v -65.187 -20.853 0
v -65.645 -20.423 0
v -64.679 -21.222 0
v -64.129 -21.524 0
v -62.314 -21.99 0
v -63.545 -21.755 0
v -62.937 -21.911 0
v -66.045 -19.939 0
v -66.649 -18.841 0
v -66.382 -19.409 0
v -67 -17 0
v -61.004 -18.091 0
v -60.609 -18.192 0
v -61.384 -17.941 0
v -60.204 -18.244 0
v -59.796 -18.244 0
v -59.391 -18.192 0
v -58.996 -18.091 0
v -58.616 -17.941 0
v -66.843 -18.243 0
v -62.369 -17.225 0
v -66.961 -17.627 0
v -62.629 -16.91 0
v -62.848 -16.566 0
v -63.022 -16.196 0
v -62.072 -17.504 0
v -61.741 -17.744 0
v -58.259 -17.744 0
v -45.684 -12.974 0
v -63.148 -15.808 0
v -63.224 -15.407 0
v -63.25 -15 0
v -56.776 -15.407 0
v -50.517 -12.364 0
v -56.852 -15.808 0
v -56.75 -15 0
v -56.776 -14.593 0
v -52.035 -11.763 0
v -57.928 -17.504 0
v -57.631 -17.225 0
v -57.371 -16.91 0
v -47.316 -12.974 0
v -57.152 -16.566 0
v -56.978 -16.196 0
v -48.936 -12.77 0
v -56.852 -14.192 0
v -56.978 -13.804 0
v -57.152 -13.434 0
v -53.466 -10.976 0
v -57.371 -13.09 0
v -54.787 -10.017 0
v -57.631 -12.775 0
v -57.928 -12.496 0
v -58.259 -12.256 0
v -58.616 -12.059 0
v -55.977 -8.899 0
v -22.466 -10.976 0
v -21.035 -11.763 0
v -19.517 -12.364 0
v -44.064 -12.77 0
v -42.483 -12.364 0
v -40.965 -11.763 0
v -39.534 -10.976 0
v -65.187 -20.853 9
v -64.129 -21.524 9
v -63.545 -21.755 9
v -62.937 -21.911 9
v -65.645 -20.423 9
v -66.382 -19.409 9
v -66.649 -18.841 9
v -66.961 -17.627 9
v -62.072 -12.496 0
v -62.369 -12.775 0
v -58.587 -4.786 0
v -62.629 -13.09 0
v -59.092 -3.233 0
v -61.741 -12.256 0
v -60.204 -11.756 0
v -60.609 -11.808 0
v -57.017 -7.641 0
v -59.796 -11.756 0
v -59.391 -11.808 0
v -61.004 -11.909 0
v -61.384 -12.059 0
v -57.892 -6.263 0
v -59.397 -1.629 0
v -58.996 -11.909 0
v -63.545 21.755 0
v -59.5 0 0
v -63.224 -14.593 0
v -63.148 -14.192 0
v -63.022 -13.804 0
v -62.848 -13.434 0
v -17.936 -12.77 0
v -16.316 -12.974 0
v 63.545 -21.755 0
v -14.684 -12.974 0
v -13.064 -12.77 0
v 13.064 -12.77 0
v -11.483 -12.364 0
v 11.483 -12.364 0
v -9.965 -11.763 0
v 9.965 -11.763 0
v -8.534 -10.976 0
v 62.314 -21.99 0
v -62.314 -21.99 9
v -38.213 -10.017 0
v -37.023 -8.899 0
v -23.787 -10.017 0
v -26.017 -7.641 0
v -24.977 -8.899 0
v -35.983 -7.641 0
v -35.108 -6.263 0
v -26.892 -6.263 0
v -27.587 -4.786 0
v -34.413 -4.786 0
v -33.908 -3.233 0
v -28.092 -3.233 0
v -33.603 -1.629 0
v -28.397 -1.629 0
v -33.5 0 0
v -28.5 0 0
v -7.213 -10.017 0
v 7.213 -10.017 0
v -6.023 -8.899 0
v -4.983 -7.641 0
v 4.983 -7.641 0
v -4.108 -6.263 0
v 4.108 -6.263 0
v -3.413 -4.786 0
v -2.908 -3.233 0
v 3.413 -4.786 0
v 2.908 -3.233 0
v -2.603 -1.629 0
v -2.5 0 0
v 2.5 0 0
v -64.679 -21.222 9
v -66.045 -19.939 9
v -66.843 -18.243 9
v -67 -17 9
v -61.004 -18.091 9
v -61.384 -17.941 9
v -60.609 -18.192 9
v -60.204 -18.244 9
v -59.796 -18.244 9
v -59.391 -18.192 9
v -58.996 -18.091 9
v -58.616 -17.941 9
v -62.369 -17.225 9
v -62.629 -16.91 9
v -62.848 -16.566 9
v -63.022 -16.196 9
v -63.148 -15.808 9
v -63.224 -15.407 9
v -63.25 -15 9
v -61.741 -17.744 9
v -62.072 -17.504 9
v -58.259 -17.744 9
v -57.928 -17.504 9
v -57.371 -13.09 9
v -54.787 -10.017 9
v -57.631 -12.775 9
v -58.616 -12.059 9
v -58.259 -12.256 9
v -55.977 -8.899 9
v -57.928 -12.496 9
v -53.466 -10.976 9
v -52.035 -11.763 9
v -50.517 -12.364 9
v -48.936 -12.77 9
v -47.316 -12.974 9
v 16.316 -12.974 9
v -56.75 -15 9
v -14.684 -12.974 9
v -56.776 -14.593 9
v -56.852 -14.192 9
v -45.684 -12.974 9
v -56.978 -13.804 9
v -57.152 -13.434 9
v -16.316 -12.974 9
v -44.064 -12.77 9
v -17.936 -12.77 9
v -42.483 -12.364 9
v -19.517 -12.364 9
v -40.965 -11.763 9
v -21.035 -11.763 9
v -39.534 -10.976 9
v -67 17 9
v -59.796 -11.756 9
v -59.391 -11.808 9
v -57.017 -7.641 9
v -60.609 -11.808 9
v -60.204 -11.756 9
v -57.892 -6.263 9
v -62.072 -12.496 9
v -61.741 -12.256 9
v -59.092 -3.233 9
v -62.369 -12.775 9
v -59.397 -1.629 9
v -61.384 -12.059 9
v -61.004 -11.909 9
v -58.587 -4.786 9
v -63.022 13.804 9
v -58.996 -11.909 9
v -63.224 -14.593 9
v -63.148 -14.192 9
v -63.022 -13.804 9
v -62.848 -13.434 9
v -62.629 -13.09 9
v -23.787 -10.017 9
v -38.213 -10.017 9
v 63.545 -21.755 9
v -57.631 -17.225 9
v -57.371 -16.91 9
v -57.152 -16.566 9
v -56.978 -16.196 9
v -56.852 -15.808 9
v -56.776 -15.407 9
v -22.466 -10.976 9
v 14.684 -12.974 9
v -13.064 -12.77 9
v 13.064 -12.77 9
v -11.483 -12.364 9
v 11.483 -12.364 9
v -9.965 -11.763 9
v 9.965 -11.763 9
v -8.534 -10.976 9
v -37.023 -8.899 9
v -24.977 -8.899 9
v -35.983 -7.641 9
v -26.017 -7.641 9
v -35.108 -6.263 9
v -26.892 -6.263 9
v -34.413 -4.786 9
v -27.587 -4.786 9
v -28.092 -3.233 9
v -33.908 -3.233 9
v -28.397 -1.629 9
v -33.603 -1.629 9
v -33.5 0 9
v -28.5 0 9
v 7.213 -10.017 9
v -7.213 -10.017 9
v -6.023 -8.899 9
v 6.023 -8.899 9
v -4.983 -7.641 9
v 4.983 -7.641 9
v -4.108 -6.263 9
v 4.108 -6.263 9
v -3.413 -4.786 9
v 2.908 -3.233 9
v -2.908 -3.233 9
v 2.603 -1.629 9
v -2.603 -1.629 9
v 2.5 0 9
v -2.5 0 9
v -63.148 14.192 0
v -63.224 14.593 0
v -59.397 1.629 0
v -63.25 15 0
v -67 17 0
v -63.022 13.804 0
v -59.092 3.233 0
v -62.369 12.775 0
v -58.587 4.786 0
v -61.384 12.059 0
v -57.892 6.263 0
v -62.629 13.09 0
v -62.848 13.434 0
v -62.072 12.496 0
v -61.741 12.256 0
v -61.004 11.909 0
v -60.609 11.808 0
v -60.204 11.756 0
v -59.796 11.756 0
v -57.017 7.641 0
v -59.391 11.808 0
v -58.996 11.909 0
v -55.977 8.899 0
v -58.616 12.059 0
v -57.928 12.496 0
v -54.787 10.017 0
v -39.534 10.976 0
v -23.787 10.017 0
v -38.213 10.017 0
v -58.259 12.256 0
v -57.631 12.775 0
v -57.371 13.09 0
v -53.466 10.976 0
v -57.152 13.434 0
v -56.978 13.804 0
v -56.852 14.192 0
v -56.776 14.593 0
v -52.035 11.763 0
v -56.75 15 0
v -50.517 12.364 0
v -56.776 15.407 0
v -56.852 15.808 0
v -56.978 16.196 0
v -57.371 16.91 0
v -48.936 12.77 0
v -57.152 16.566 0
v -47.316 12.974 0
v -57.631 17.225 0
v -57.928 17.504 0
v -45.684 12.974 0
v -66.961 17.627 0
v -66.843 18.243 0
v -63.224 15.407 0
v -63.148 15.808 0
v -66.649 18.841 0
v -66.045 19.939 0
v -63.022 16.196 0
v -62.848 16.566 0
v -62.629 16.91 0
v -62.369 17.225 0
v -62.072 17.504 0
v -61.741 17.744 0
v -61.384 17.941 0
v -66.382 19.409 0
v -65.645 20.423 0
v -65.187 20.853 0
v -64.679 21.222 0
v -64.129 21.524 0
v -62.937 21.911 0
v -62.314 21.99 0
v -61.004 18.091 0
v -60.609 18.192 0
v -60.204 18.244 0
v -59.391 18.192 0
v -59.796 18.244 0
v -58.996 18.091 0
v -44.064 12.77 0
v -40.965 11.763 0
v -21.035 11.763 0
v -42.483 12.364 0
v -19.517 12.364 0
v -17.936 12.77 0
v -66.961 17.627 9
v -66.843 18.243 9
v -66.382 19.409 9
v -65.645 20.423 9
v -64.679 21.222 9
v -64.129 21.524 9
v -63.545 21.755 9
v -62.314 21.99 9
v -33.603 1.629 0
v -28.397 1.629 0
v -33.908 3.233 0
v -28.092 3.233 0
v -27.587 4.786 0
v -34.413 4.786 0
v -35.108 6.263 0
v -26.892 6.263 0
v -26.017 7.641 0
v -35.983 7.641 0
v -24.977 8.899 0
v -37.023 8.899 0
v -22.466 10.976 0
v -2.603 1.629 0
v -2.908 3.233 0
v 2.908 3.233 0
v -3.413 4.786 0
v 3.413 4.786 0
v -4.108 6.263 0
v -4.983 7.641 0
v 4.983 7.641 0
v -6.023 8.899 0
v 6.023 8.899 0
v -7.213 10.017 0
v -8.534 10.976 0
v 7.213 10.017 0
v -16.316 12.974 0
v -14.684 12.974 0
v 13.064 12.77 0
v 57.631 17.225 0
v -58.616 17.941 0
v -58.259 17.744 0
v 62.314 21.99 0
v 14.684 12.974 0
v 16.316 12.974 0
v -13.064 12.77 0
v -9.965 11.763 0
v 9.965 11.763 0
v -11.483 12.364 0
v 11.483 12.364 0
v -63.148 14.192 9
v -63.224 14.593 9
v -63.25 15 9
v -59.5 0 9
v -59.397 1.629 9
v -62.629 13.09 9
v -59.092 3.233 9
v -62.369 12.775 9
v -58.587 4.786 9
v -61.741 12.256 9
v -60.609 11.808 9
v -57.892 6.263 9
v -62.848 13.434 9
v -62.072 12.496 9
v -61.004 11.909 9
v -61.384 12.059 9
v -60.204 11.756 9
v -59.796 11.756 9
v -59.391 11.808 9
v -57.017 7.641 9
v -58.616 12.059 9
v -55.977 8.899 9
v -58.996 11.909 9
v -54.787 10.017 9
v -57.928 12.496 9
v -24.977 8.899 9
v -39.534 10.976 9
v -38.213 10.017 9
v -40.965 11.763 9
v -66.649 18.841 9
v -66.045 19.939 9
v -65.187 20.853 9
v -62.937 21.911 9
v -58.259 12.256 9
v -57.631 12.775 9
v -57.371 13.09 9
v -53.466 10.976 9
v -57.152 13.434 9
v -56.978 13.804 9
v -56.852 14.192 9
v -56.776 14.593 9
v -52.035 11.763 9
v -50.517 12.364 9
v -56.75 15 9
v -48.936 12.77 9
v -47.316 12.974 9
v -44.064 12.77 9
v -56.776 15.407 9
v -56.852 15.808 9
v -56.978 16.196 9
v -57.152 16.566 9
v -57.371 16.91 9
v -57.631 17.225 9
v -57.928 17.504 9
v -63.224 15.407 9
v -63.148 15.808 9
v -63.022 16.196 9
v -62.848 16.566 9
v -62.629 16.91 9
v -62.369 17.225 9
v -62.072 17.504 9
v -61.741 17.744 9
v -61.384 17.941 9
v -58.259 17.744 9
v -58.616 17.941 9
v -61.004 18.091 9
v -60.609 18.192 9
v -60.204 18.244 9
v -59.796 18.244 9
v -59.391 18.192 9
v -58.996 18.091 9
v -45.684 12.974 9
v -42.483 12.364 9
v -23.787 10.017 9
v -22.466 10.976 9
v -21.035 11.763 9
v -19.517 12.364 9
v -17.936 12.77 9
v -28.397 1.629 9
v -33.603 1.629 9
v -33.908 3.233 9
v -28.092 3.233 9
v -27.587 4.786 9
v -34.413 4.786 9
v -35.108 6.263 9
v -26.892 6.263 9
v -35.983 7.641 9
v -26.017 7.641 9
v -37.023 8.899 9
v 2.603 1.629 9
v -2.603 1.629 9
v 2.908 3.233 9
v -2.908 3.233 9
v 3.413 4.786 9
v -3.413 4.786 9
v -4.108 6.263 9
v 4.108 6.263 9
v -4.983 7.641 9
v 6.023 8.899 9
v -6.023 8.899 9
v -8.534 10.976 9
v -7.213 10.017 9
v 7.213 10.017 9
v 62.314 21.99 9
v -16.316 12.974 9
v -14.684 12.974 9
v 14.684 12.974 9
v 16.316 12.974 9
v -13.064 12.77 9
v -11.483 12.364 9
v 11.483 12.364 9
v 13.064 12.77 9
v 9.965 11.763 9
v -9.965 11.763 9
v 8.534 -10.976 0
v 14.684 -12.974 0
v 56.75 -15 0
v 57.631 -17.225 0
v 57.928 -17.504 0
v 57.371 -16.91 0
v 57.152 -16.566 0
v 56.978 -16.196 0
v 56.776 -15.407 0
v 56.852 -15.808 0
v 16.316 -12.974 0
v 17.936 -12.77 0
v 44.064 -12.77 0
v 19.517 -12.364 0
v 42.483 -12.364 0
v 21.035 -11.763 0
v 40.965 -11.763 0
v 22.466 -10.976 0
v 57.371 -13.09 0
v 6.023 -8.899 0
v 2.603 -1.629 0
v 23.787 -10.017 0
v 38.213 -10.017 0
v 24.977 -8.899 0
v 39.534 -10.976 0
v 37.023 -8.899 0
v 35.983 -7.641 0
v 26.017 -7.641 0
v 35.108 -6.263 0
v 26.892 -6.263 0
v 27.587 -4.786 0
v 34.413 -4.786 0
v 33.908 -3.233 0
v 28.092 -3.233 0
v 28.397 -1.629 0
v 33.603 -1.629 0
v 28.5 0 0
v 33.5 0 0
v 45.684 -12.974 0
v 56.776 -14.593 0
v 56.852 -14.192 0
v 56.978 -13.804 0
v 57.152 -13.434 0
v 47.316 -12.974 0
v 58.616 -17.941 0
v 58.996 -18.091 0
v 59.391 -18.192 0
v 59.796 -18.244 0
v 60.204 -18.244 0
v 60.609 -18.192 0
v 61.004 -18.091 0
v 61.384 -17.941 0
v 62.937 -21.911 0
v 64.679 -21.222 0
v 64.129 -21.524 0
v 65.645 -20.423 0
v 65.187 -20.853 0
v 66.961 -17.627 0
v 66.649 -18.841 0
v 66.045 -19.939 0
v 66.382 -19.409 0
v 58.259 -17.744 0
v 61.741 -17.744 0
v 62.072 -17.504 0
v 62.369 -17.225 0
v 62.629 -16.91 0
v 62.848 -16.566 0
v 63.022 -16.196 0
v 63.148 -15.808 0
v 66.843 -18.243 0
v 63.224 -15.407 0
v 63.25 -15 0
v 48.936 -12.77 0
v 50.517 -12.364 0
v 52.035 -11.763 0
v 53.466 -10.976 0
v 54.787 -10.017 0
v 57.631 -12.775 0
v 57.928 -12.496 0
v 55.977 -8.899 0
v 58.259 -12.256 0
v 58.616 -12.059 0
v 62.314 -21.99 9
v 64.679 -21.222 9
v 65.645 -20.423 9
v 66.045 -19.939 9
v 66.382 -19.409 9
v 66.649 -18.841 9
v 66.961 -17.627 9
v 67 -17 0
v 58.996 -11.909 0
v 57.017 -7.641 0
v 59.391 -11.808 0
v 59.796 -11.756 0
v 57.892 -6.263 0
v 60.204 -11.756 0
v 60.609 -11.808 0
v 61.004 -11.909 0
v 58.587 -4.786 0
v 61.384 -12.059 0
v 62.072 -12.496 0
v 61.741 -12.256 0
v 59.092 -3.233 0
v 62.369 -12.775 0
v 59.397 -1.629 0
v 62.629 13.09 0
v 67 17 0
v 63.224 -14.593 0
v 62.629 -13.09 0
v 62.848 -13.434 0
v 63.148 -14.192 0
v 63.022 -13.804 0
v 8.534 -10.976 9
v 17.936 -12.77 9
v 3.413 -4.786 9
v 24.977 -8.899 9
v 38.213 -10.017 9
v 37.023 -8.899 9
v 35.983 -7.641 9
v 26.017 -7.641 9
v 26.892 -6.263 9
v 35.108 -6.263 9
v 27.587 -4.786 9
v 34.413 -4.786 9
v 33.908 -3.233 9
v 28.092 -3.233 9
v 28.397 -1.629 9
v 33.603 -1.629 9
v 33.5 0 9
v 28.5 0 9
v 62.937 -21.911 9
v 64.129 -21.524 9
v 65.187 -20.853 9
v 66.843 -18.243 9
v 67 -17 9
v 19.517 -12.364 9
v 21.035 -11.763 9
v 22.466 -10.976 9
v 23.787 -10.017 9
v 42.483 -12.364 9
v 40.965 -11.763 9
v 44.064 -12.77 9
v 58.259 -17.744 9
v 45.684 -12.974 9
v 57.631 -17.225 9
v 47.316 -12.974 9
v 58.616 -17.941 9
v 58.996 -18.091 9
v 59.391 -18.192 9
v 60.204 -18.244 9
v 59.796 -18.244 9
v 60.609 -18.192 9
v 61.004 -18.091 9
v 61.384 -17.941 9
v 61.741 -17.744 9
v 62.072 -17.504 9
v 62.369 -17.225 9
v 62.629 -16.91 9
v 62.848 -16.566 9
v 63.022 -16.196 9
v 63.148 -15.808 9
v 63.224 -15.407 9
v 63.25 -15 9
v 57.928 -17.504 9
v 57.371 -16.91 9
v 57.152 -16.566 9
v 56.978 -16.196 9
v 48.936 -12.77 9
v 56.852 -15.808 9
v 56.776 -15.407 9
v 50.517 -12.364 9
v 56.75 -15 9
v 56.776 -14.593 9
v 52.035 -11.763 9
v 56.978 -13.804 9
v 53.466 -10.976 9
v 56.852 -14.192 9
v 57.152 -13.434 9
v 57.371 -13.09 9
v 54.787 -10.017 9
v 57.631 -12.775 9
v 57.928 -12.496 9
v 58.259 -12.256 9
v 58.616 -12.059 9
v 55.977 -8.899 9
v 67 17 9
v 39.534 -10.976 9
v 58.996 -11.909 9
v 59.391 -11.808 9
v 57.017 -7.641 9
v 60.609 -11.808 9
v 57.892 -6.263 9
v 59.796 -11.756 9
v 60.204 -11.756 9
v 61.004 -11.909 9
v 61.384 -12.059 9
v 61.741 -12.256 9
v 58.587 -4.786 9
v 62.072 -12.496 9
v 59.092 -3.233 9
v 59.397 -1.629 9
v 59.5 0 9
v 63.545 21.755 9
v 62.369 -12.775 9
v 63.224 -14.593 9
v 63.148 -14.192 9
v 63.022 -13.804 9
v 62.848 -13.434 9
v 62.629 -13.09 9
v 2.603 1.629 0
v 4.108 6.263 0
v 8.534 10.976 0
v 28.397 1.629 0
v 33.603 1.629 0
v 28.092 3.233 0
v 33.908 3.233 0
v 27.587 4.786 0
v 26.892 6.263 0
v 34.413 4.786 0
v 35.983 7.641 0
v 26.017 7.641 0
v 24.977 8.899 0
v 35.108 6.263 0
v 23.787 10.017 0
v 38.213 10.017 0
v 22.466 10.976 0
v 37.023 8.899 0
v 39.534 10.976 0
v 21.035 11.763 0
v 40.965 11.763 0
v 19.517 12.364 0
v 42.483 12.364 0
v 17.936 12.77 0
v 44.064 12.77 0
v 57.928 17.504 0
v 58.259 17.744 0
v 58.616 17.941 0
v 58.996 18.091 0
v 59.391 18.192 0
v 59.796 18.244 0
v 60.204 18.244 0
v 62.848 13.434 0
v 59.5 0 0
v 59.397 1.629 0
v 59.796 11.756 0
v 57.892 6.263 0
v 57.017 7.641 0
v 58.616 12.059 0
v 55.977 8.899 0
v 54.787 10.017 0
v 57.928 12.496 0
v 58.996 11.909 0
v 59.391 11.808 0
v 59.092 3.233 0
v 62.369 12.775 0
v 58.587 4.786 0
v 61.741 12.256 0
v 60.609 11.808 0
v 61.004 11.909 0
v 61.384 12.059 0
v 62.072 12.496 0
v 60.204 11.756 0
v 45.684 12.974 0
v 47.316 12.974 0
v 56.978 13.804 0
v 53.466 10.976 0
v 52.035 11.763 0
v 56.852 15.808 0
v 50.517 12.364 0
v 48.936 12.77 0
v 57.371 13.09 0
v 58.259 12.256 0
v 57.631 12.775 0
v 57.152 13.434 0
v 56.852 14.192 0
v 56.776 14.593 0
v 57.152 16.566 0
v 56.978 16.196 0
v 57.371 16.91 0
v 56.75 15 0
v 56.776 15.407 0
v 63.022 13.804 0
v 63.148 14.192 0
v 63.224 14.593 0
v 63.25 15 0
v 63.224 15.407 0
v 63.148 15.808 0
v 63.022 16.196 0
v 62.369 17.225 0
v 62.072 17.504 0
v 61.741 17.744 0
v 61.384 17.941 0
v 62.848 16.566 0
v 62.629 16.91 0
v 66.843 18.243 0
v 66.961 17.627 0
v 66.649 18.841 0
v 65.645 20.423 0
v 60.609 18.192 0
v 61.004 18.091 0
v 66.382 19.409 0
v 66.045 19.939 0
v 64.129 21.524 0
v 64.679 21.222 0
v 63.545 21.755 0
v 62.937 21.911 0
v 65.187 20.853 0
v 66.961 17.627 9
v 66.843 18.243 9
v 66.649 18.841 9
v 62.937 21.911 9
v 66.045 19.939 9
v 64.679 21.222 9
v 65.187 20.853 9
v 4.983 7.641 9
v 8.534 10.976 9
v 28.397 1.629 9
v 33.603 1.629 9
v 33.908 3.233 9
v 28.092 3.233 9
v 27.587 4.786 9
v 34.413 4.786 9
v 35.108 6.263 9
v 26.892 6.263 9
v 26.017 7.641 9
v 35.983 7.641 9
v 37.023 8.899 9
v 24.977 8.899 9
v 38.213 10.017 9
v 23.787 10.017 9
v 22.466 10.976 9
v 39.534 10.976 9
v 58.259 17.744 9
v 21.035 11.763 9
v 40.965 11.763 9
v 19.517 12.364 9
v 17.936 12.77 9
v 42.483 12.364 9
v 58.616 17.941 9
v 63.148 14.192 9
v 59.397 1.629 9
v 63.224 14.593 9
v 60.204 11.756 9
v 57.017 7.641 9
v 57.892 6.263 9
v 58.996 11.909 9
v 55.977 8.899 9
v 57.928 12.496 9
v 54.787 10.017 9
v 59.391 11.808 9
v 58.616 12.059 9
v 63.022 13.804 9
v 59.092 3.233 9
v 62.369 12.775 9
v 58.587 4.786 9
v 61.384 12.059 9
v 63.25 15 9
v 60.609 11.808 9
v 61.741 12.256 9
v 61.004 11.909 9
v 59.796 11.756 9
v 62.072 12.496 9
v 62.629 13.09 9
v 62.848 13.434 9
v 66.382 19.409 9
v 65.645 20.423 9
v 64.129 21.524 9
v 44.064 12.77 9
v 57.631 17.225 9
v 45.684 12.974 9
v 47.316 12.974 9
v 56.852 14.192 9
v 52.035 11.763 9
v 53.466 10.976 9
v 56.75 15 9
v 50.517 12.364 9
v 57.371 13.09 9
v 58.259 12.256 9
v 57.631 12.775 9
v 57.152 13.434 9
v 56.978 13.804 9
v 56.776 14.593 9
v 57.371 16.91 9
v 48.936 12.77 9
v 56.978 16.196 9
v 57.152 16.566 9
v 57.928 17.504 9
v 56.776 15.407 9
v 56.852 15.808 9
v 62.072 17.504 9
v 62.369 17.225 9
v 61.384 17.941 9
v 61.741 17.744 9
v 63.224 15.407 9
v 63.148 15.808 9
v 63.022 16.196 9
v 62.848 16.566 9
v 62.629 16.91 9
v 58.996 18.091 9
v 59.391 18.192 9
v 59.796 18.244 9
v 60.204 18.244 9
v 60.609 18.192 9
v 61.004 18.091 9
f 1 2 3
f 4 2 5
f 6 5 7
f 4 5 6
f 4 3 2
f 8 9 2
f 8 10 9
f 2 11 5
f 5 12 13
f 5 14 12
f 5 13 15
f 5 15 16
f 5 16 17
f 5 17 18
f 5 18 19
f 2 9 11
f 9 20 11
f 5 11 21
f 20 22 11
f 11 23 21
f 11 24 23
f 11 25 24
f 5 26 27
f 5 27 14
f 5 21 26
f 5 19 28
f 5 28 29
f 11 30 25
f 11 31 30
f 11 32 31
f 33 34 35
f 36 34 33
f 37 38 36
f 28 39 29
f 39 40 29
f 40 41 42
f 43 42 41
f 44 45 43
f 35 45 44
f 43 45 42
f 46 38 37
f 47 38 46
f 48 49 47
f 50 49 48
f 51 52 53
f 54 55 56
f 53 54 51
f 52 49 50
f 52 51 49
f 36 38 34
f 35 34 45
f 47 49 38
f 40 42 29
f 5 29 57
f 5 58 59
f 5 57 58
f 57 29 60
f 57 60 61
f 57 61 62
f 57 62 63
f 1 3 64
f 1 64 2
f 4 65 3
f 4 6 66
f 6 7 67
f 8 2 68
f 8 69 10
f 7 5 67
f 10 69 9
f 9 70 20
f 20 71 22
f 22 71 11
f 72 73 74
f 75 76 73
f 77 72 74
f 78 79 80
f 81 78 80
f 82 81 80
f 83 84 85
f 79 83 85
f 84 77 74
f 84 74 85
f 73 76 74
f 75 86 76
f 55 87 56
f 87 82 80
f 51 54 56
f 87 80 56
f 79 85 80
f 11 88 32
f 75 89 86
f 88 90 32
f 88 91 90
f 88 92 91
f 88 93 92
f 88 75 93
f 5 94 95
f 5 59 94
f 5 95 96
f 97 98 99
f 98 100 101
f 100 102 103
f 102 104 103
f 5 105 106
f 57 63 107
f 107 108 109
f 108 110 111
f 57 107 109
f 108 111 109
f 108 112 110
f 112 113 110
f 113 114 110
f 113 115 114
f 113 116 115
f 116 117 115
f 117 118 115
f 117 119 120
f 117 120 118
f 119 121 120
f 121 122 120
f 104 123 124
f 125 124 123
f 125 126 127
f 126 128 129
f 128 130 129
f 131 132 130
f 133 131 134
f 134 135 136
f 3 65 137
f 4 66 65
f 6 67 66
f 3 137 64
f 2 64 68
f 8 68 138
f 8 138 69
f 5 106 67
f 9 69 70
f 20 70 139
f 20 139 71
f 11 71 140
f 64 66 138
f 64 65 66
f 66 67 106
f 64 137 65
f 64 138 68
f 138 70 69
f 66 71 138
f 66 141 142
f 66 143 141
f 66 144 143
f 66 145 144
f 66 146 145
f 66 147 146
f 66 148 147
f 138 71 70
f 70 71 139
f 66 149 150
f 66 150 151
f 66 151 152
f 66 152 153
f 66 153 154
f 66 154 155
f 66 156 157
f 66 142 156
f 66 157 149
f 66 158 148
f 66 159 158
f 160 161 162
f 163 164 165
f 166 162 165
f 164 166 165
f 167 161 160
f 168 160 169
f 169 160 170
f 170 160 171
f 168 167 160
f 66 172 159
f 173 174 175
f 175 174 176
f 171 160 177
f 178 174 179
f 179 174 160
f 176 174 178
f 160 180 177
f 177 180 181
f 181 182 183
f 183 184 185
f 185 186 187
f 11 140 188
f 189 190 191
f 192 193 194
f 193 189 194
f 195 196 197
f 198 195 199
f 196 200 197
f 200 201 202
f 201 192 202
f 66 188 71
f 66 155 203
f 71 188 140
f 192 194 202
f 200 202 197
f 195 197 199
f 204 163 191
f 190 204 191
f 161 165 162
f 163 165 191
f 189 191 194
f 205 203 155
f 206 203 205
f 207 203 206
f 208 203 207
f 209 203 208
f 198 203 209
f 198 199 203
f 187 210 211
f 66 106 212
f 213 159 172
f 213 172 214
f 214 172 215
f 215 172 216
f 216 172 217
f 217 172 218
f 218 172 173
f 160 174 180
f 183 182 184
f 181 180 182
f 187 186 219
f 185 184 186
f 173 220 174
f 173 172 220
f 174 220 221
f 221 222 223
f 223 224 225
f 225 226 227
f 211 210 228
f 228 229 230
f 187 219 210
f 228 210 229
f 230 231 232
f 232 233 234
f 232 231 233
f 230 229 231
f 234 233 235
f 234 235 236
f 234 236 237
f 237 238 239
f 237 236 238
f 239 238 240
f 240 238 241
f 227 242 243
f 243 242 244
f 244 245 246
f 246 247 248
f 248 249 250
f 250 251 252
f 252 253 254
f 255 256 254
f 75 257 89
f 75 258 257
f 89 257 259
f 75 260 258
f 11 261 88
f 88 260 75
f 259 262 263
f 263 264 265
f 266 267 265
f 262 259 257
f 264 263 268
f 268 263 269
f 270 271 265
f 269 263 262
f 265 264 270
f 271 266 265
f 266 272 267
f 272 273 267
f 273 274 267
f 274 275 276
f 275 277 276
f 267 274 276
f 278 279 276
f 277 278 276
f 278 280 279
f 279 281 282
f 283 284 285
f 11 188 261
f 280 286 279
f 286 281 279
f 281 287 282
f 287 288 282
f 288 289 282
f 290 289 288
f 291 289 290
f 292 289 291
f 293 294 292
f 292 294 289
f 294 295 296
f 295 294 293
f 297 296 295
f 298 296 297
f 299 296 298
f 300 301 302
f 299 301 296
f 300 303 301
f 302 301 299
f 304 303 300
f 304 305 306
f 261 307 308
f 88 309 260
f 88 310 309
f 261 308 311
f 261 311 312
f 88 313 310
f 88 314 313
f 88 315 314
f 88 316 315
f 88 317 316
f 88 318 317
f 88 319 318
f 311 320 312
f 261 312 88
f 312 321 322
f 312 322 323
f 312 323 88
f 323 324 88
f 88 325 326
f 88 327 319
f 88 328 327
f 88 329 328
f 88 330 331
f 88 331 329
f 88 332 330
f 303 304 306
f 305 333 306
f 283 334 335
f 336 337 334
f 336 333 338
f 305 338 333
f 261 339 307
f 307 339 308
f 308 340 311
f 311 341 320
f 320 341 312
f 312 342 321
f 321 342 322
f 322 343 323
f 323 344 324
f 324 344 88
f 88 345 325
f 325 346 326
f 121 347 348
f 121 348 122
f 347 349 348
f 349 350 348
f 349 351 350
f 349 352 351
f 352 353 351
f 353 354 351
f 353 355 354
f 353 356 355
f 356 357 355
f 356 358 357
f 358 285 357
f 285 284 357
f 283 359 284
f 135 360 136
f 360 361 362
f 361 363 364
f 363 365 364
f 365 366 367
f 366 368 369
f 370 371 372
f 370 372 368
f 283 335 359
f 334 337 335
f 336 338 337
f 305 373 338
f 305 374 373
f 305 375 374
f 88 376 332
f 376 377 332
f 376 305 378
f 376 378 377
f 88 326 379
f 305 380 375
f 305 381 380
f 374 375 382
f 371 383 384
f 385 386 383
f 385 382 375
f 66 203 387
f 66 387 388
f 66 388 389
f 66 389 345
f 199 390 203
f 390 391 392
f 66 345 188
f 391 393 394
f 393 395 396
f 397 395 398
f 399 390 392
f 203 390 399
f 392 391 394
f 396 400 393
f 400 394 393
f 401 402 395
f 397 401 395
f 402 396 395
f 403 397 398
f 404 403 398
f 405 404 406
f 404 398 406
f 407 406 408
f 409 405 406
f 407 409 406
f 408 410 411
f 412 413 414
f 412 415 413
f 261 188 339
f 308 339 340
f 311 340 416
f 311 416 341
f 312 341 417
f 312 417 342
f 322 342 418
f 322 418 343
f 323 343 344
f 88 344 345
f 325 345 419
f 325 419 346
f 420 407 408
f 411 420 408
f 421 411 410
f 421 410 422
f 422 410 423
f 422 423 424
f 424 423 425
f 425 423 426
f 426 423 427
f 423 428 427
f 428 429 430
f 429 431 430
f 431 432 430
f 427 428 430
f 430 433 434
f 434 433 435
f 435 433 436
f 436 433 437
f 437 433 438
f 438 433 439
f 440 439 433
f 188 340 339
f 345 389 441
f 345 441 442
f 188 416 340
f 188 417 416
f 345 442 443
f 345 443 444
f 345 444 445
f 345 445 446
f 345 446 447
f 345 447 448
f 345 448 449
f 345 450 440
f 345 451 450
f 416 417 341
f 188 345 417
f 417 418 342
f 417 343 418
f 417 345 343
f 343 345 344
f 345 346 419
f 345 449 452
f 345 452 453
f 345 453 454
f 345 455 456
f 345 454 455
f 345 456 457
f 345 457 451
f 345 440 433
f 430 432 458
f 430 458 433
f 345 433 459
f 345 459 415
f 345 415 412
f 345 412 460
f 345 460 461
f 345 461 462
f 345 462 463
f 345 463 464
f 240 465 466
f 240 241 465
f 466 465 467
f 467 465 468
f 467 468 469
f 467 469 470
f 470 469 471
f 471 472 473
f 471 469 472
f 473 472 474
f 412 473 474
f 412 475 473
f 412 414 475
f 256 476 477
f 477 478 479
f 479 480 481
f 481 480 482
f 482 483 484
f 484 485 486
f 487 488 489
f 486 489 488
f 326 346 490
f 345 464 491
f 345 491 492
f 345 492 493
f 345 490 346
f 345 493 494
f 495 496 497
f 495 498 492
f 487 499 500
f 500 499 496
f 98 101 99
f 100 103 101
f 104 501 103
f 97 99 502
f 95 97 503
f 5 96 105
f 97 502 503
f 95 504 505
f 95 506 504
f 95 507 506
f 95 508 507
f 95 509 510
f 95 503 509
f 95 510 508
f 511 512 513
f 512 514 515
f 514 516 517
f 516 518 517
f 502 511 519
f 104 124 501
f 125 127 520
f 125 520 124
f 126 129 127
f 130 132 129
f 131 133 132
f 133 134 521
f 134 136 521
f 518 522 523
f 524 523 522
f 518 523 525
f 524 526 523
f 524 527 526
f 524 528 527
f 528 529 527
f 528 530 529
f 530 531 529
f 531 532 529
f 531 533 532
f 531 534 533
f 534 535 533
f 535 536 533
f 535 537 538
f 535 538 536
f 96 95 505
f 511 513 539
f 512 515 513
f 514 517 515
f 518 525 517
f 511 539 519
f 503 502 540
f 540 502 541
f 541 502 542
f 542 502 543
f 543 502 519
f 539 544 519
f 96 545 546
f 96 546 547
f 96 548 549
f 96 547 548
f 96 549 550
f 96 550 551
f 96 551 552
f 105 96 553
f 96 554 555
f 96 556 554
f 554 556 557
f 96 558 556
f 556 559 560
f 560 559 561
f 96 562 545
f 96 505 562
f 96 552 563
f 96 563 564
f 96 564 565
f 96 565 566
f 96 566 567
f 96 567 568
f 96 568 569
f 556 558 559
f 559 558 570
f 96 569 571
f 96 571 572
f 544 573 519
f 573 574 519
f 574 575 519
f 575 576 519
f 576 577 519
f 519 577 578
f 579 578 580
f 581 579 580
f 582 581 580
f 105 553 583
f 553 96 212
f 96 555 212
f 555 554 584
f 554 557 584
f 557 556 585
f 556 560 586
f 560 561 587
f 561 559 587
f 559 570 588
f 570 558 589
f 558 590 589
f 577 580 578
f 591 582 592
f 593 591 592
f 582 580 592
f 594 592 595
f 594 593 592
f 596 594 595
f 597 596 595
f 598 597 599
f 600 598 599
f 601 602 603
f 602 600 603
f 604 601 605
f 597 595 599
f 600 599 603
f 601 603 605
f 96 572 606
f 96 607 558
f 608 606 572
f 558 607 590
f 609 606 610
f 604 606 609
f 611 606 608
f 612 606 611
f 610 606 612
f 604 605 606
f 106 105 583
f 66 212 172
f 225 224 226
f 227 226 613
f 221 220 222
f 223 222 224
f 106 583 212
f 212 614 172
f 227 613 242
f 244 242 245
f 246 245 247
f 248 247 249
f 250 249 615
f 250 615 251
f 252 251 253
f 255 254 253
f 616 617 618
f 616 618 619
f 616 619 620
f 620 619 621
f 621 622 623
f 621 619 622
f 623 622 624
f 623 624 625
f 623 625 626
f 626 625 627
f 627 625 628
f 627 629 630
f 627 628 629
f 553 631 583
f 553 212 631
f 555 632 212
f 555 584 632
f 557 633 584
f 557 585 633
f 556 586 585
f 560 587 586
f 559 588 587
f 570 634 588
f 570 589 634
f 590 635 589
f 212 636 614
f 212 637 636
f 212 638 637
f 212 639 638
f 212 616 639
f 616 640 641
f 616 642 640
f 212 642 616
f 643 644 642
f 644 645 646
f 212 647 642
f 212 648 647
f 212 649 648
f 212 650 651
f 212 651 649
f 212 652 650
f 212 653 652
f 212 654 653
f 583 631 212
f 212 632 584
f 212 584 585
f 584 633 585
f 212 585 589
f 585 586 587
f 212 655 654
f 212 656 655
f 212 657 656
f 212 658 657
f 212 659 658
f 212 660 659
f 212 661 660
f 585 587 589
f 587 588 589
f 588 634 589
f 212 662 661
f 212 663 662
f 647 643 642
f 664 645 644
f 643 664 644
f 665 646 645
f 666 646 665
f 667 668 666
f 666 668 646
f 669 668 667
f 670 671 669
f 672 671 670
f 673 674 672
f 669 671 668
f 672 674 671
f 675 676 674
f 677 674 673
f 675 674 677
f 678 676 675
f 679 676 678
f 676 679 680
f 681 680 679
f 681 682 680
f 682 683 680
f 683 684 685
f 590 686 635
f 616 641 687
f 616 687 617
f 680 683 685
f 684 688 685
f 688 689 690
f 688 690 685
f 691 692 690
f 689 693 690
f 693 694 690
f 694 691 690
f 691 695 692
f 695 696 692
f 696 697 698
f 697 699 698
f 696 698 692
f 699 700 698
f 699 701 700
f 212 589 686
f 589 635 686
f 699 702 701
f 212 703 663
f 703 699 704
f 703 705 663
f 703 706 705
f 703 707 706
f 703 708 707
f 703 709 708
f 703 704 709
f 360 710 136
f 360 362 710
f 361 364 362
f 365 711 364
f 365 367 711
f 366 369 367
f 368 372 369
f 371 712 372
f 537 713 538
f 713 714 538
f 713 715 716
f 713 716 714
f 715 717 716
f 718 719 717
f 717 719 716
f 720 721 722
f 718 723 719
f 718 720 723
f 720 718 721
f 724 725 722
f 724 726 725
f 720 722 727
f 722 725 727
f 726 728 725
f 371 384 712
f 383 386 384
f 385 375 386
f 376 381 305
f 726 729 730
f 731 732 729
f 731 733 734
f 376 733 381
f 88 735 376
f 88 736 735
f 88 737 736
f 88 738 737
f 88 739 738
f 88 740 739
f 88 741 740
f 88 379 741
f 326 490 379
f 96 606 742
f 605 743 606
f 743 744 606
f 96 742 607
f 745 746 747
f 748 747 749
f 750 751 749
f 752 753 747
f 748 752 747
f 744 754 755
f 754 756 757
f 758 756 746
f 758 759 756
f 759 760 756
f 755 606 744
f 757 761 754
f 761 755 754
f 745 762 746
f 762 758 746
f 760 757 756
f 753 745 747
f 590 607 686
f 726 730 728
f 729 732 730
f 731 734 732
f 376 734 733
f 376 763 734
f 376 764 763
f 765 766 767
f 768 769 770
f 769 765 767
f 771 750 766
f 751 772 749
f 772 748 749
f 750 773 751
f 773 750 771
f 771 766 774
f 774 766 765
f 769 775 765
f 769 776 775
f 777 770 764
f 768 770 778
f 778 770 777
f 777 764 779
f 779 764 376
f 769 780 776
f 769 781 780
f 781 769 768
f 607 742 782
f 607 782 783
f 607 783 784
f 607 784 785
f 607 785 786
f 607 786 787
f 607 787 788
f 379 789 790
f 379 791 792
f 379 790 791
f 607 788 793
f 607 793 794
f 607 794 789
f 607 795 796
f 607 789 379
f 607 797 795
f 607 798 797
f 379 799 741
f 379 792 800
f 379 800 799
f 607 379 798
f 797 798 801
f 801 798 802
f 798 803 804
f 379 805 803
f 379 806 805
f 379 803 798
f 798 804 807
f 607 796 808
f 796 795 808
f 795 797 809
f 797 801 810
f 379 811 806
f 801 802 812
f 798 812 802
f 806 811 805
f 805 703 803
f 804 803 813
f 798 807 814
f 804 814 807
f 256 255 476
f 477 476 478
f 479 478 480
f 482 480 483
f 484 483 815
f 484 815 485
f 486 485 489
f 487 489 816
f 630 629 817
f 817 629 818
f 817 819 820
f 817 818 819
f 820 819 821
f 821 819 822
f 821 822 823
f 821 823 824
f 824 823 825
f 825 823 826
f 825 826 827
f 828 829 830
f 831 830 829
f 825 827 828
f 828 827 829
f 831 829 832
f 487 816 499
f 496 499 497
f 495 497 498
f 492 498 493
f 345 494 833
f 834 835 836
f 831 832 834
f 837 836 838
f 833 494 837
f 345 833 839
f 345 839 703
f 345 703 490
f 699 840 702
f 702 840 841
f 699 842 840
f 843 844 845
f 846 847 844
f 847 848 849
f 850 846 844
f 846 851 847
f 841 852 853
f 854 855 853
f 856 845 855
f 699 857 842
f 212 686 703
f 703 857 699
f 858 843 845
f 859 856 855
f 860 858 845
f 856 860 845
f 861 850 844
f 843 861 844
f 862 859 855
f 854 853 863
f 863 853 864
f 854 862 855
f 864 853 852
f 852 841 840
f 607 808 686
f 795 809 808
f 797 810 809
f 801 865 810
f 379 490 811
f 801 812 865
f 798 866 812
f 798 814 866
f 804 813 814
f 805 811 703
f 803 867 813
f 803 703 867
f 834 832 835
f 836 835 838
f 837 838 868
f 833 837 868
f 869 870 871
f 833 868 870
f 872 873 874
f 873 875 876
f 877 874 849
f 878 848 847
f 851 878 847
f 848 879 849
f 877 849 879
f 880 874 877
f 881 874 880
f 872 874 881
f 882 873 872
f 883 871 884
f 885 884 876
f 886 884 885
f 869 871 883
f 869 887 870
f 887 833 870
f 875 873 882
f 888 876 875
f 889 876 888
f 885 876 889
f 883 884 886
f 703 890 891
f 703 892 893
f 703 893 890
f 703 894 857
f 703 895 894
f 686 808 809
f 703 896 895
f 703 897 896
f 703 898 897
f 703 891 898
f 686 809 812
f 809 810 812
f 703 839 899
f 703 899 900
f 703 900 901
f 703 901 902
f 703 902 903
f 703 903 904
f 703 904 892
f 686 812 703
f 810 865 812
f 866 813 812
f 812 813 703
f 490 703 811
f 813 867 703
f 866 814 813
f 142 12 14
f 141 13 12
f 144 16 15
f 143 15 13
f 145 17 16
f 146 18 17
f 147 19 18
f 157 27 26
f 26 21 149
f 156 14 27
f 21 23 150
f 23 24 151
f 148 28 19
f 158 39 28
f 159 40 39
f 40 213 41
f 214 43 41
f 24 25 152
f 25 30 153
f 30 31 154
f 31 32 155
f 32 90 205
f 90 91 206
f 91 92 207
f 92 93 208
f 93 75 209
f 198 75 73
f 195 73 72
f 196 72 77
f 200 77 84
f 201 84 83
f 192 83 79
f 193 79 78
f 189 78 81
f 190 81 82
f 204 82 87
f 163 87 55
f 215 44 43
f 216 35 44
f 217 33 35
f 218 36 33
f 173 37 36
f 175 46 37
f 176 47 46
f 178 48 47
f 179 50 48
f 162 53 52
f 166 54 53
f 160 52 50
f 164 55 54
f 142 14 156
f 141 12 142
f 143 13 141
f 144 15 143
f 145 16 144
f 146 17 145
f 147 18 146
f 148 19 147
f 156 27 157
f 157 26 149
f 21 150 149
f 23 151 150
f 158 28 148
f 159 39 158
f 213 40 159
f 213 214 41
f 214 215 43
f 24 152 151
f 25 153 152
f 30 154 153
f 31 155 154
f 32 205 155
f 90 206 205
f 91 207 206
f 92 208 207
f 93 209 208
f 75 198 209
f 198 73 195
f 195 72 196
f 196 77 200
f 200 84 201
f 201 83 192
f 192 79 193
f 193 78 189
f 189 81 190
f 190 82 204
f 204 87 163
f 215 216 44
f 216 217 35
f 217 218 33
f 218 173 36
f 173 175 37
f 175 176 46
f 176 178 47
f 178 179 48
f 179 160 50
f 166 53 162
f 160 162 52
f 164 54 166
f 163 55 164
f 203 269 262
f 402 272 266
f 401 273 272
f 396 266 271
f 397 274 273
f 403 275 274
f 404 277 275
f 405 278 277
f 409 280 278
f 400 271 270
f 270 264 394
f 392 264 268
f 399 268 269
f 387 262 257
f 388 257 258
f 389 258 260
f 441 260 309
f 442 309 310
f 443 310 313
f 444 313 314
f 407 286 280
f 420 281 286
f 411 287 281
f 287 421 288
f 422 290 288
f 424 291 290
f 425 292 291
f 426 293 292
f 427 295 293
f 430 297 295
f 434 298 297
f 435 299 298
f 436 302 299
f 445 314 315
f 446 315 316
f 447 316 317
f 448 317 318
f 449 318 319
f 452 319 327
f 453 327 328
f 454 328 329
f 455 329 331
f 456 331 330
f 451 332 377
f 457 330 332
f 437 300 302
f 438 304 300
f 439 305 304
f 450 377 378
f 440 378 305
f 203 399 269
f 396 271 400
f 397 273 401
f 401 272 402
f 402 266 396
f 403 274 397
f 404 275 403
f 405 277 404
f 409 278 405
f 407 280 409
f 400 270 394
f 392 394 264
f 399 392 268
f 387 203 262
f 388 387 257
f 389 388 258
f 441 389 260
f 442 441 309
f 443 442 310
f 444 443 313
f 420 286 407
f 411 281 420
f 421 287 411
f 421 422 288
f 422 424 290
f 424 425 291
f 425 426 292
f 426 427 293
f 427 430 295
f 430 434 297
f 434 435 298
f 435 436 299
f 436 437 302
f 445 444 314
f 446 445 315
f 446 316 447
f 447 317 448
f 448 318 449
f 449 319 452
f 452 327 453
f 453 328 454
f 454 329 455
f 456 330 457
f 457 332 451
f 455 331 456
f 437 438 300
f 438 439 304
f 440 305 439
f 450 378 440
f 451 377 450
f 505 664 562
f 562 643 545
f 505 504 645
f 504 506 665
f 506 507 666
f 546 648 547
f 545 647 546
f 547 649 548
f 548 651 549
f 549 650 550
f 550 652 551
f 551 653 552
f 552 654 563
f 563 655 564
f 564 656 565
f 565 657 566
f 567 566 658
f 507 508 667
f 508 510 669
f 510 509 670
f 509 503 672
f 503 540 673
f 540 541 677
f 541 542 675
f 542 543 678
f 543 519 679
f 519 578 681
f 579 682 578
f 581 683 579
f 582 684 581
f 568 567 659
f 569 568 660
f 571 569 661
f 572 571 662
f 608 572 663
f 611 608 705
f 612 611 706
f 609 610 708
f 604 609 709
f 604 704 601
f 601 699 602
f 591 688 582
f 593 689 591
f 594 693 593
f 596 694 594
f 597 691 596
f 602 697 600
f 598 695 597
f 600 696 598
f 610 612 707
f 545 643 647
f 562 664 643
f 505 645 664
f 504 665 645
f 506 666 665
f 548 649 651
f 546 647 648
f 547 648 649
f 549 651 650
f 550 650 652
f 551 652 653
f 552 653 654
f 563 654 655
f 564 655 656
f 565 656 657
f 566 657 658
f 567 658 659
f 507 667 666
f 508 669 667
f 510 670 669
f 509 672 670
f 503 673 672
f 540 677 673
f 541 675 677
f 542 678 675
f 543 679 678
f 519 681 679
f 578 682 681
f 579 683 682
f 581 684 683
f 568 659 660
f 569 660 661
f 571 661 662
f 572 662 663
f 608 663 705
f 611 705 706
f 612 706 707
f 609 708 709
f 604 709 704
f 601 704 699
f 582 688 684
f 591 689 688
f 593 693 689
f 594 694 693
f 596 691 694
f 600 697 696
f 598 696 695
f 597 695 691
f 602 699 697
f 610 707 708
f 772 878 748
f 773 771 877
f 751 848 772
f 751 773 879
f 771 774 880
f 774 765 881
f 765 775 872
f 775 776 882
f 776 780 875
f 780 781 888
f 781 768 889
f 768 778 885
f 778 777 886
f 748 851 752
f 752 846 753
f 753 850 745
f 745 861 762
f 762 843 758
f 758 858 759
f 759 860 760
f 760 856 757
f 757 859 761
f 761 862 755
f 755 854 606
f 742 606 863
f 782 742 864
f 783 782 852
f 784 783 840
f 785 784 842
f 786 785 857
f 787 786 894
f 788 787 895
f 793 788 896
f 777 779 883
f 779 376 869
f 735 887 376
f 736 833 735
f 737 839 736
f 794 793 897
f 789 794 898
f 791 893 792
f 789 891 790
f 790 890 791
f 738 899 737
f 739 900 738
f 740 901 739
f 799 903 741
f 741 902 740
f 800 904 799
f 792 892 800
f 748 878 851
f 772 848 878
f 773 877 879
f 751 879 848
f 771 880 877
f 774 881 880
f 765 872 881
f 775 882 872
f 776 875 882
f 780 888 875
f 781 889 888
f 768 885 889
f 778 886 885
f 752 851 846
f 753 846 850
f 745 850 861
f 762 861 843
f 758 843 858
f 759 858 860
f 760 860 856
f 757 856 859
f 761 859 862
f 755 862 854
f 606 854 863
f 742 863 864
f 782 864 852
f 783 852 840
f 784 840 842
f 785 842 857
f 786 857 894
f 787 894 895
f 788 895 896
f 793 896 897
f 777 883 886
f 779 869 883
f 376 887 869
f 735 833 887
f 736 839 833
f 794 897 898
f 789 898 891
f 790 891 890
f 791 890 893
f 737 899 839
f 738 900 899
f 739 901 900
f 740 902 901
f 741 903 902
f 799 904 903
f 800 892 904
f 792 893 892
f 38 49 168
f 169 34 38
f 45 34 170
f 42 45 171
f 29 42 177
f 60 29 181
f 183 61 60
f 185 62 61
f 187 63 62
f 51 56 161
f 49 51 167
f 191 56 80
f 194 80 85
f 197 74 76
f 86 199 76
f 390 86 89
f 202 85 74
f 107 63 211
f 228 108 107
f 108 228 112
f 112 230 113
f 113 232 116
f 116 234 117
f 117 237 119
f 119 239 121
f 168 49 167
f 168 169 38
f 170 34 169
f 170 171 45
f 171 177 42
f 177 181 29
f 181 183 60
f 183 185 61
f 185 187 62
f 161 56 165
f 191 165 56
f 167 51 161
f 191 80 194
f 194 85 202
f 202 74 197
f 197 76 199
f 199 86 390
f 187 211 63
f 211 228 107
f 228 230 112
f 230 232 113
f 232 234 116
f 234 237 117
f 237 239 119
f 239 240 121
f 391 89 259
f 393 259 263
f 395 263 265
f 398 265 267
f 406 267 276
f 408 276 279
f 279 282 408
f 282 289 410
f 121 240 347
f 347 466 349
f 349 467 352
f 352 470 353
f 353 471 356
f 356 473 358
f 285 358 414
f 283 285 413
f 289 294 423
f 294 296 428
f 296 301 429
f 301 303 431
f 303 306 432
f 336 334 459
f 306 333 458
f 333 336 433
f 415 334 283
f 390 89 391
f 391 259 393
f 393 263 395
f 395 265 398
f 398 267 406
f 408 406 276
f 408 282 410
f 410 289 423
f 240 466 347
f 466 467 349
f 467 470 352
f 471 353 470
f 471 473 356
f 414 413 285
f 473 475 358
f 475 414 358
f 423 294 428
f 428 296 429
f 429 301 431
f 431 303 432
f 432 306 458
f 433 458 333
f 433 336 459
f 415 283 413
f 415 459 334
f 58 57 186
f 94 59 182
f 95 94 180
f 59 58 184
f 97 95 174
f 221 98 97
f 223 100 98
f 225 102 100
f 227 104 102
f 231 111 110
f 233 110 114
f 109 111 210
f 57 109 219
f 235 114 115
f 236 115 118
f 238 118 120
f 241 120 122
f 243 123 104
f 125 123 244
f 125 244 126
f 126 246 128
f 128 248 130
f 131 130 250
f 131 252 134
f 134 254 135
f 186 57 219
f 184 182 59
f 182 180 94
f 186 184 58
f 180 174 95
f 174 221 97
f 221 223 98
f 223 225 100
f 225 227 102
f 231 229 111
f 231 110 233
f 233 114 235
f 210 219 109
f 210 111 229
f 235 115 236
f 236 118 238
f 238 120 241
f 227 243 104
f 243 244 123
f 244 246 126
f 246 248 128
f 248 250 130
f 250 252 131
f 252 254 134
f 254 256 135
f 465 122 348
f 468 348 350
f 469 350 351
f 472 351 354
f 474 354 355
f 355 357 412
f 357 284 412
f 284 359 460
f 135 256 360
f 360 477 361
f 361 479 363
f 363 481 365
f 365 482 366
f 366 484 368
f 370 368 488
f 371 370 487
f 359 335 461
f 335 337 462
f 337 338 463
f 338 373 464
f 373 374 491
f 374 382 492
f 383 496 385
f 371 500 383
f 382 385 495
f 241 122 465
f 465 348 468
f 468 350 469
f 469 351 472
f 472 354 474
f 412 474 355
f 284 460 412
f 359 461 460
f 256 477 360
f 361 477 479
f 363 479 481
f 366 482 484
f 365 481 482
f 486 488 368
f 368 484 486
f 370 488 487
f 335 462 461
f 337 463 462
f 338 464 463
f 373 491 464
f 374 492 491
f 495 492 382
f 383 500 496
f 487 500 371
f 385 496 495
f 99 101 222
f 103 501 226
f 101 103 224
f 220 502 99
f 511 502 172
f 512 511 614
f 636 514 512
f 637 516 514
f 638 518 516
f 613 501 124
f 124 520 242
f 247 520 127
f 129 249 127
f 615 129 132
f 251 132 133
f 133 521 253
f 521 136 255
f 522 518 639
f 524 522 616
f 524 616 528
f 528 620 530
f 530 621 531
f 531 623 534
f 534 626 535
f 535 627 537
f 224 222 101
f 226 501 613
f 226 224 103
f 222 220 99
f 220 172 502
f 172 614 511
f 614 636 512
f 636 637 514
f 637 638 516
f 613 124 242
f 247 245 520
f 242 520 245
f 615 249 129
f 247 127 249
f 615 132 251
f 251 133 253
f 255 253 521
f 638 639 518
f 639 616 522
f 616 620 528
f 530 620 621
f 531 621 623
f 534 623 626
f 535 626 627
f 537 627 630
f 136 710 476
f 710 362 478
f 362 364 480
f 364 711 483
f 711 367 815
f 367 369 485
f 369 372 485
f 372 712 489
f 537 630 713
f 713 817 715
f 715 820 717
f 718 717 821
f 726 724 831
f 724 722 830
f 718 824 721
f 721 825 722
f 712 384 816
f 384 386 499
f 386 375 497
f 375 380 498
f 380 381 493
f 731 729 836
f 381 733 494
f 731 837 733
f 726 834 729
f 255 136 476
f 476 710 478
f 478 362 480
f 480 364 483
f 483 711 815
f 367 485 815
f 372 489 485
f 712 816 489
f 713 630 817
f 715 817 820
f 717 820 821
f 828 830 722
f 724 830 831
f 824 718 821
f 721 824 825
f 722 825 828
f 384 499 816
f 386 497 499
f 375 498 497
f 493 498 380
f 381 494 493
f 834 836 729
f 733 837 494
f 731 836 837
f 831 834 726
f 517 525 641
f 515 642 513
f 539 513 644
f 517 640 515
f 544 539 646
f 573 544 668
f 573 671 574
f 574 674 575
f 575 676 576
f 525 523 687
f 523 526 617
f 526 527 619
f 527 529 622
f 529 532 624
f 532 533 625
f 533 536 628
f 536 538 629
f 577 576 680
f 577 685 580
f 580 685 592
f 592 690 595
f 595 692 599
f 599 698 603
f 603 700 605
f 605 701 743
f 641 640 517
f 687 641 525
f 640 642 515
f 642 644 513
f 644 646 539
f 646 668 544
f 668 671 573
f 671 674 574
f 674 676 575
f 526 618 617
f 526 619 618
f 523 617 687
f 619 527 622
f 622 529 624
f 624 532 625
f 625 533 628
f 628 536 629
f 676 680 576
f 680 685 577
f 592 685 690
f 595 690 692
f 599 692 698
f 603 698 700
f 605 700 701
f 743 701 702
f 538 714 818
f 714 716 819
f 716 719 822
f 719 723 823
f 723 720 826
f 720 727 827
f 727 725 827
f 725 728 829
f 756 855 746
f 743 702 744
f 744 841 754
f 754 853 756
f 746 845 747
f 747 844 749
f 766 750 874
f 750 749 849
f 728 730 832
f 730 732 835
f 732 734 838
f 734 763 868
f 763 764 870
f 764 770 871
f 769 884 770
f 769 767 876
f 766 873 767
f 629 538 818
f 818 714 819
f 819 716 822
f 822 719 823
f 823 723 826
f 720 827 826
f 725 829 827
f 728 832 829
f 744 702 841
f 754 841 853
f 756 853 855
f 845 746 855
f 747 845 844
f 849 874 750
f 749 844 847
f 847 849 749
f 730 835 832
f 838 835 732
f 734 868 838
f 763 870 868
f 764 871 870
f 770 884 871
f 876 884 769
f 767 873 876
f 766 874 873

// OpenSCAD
$fn = 50;

difference() {
	union() {
		hull() {
			translate(v = [-62.0, 17.0, 0]) {
				cylinder(h = 9, r = 5);
			}
			translate(v = [62.0, 17.0, 0]) {
				cylinder(h = 9, r = 5);
			}
			translate(v = [-62.0, -17.0, 0]) {
				cylinder(h = 9, r = 5);
			}
			translate(v = [62.0, -17.0, 0]) {
				cylinder(h = 9, r = 5);
			}
		}
	}
	union() {
		translate(v = [-60.0, -15.0, -100.0]) {
			cylinder(h = 200, r = 3.25);
		}
		translate(v = [-60.0, 15.0, -100.0]) {
			cylinder(h = 200, r = 3.25);
		}
		translate(v = [60.0, -15.0, -100.0]) {
			cylinder(h = 200, r = 3.25);
		}
		translate(v = [60.0, 15.0, -100.0]) {
			cylinder(h = 200, r = 3.25);
		}
		translate(v = [-60.0, -15.0, -100.0]) {
			cylinder(h = 200, r = 1.8);
		}
		translate(v = [-60.0, 15.0, -100.0]) {
			cylinder(h = 200, r = 1.8);
		}
		translate(v = [60.0, -15.0, -100.0]) {
			cylinder(h = 200, r = 1.8);
		}
		translate(v = [60.0, 15.0, -100.0]) {
			cylinder(h = 200, r = 1.8);
		}
		translate(v = [-46.5, 0, 0.0]) {
			cylinder(h = 9, r = 13.0);
		}
		translate(v = [-15.5, 0, 0.0]) {
			cylinder(h = 9, r = 13.0);
		}
		translate(v = [15.5, 0, 0.0]) {
			cylinder(h = 9, r = 13.0);
		}
		translate(v = [46.5, 0, 0.0]) {
			cylinder(h = 9, r = 13.0);
		}
	}
}
